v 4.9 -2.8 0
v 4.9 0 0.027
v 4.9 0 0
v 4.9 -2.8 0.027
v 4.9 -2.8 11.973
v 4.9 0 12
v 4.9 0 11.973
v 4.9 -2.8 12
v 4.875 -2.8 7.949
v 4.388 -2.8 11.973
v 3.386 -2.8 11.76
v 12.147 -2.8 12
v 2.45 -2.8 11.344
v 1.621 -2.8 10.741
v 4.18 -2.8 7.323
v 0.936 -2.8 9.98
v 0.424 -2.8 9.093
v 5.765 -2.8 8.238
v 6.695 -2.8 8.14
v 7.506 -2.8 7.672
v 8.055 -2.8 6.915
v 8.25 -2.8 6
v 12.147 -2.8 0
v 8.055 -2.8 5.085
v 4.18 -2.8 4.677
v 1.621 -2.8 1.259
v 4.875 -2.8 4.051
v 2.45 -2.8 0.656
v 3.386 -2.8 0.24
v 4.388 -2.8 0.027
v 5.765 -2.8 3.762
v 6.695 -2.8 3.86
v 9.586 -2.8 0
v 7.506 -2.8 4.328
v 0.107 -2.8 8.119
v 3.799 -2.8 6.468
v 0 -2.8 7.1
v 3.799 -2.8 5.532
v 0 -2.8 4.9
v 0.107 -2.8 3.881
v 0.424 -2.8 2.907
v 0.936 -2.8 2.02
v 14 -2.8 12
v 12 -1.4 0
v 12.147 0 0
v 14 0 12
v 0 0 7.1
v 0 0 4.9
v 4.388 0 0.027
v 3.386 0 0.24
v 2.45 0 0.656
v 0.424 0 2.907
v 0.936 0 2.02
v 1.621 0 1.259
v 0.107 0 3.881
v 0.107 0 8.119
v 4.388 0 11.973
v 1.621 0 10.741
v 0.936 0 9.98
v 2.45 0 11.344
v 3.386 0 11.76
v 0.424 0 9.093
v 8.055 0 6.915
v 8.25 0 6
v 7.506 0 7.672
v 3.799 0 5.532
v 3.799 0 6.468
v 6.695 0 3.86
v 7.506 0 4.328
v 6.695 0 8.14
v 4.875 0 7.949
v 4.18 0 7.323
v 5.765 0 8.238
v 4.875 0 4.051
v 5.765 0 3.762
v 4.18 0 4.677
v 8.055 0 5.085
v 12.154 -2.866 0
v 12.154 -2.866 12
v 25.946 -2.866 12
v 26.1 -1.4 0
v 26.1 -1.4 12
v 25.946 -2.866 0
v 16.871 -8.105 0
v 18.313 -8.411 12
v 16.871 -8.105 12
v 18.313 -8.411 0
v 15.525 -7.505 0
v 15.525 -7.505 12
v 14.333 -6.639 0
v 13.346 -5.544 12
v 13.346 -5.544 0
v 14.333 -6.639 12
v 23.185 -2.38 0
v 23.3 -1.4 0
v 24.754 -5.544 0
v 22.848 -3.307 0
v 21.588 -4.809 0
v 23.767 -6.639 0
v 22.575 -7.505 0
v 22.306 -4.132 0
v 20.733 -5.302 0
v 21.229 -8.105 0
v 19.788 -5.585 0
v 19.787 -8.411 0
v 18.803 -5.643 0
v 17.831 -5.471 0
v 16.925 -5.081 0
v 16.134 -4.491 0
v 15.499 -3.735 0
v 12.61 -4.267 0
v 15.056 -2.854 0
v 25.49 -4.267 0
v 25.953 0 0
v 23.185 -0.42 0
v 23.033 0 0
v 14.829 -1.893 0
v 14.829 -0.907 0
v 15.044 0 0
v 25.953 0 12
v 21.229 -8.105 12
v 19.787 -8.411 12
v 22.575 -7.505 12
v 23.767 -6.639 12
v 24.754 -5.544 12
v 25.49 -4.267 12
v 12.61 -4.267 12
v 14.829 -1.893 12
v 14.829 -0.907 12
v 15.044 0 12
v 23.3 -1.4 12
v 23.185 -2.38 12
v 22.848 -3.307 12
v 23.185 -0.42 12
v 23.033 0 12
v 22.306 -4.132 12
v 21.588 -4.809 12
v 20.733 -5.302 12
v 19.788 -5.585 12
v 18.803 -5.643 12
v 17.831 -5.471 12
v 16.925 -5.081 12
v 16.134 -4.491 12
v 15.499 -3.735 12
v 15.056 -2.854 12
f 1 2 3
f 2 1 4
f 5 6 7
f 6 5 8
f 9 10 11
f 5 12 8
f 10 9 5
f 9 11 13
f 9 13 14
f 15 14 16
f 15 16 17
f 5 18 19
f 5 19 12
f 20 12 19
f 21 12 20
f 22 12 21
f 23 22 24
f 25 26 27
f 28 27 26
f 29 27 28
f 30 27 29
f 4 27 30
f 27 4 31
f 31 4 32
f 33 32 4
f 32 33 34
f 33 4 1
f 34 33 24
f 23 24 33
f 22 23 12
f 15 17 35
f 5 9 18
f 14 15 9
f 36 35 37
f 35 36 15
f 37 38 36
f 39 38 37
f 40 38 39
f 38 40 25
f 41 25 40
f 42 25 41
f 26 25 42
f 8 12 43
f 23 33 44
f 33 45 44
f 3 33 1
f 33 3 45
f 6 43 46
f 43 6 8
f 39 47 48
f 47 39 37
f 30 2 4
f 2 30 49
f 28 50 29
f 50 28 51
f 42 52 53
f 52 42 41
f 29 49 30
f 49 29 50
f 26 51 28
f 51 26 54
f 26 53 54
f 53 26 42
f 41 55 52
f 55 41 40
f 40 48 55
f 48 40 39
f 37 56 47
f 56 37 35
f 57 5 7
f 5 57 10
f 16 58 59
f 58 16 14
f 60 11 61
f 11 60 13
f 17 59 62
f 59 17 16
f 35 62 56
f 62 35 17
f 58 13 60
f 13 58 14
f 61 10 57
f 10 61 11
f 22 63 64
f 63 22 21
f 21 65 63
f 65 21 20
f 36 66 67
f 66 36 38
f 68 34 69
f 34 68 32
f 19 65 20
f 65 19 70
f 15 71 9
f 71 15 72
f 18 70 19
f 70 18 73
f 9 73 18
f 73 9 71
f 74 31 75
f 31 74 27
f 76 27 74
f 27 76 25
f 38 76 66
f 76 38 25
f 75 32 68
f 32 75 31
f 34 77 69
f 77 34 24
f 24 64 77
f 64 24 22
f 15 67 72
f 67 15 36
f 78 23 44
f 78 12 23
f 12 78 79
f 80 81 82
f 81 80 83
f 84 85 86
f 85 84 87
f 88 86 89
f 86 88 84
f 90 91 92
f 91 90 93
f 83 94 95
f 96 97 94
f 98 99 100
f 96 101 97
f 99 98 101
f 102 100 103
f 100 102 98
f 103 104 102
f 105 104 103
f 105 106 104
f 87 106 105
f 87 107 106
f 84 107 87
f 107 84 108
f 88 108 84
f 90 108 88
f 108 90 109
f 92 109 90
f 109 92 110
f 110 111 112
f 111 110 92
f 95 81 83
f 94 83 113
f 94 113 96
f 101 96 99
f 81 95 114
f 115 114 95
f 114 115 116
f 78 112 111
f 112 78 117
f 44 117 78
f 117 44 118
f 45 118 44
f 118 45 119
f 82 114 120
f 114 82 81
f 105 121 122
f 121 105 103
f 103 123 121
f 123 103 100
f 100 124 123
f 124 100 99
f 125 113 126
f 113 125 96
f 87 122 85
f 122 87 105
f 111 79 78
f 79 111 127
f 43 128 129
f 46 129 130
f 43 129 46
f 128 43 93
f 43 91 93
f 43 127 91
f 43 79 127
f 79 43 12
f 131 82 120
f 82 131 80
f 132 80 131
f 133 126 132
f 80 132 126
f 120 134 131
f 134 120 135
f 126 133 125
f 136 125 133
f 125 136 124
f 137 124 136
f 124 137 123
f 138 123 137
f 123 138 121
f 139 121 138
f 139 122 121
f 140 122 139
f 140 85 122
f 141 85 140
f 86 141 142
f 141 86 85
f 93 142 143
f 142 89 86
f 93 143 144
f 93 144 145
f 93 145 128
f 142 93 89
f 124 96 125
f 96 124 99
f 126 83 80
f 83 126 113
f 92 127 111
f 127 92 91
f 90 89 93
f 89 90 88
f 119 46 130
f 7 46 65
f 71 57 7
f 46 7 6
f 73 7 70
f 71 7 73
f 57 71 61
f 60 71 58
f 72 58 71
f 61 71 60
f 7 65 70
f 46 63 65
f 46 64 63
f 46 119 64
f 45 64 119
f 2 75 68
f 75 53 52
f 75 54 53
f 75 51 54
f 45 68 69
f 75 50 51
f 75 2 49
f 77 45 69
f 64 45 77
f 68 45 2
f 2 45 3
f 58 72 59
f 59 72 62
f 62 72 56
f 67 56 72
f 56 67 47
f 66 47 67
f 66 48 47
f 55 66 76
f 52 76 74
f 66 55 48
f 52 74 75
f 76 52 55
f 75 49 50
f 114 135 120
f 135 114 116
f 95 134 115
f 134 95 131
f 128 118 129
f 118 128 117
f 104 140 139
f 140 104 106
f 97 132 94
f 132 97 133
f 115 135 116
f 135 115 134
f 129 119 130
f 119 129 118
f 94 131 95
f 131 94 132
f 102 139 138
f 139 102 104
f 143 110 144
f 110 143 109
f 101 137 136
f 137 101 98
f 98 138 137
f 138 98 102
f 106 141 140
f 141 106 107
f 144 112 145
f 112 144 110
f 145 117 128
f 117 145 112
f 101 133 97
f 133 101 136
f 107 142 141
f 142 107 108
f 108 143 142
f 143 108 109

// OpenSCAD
// file: parameters.scad
// Parameters shared between modules
Base_th = 2.8;
Beam_width = 15;
Wiggle = 0.25;
Fat_beam_width = Beam_width + Wiggle;
Beam_length = 400;
Wall_th = 2.5;
Min_beam_width = 12.5;
Max_beam_width = 17.5;
Zip_th = 2;
Zip_h = Zip_th + Max_beam_width - Min_beam_width;
Zip_w = 5.0;
Nema17_cube_width          = 42.43;
Nema17_screw_hole_width    = 43.74; // Opposite corner screws
Nema17_ring_diameter       = 22;
Nema17_cube_height         = 39.36;
Nema17_shaft_height        = 63.65;
Nema17_ring_height         = 2;
Nema17_shaft_radius        = 5/2;
Nema23_cube_width          = 56;
Nema23_screw_hole_width    = 66.61;
Nema23_ring_diameter       = 38;
Nema23_cube_height         = 56;
Nema23_shaft_radius        = 3.175;

b608_outer_dia = 22.2;
b608_width = 7.05;
Gap_between_sandwich_and_plate = 1.5 + Base_th; // 1.5 mm for wiggle
Motor_bracket_flerp_r = 6;
Motor_bracket_flerp = 14;
Motor_bracket_cw = Nema17_cube_width + 6;
Motor_bracket_att_ang = 50;
Mounting_screw_d = 4.5;
Mounting_screw_head_d = 14;
Spool_outer_wall_th = 4;

// Corner clamp parameters
Cc_l1 = (Fat_beam_width+2*Wall_th)*2*sqrt(3);
Cc_rad_b = 4;
Cc_action_point_from_mid = Cc_l1/sqrt(3)-2*Cc_rad_b-1.3;  // 1.3 chosen arbitrarily
Cc_plastic_length = sqrt(Cc_action_point_from_mid*Cc_action_point_from_mid
                       - (Cc_action_point_from_mid/2)*(Cc_action_point_from_mid/2));

// The distance between the two action points on the mover
Sidelength = Beam_length + 2*Cc_plastic_length;

/////// Layout parameters ////////////
Ext_sidelength = Sidelength+77;
Additional_added_plate_side_length = 10;
Yshift_top_plate = -25;

/////// Gear parameters ////////////
Circular_pitch = 262;
Motor_teeth = 10;
Gear_height = 21.4-3;
Motor_pitch                      = (Motor_teeth*Circular_pitch/360);
Motor_pitch_diametrial           = Motor_teeth/(2*Motor_pitch);
Motor_outer_radius               = Motor_pitch + 1/Motor_pitch_diametrial;
Spool_teeth = 100;
Spool_r = 55;
Spool_height = 8;
Spool_pitch                      = (Spool_teeth*Circular_pitch/360);
Spool_pitch_diametrial           = Spool_teeth/(2*Spool_pitch);
Spool_outer_radius               = Spool_pitch + 1/Spool_pitch_diametrial;
Torx_depth = 5;
Motor_bracket_depth = Gear_height+1+7+Nema17_ring_height+1+Gap_between_sandwich_and_plate;
Spool_core_flerp0 = 16+3;

/////// Lineroller parameters ////////////
b623_width  = 4;
b623_bore_r = 3/2;
b623_vgroove_big_r = 12/2;
b623_vgroove_small_r = 10/2;
Lineroller_wall_th = 2.3;
// The height that lineroller_ABC_winch will have if we include the bearing
Tower_h = Gap_between_sandwich_and_plate+Gear_height
         + Spool_height/2
         + b623_vgroove_small_r
         + b623_vgroove_big_r;
Bearing_wall = 1;
Depth_of_lineroller_tower = b623_width + 2*Wall_th; // 9
Depth_of_lineroller_base = Depth_of_lineroller_tower + 9; // 18
Ptfe_r = 2.1;
Lineroller_base_r = Depth_of_lineroller_base/2-1*(Ptfe_r+2);
Screw_h = 2;
Screw_head_h = 2;
Spool_center_bearing_wall_th = 5;
// main file
include <parameters.scad>
use <util.scad>

bit_width = 12;
axle_r=4.25;

module wing() {
  difference() {
   rotate([90,0,0])
      left_rounded_cube2([bit_width+2,bit_width,Base_th], Lineroller_base_r);
   screw();
  }


}

module screw() {
  translate([bit_width/2, 0, bit_width/2])
    rotate([90,0,0])
    translate([0,0,-1])
    cylinder(d=Mounting_screw_d, h=Base_th+2, $fs=1);
  translate([bit_width/2, 0, bit_width/2])
    rotate([90,0,0])
    translate([0,0,Base_th])
    cylinder(d2=Mounting_screw_head_d-4, d1=Mounting_screw_head_d, h=12, $fs=1);
}


difference(){
  union(){
    wing();
    translate([bit_width+axle_r+Base_th,-Base_th/2,0])
      cylinder(r=axle_r+Base_th, h=bit_width, $fs=1);
  }
  translate([0,0,-1])
    cube(bit_width+2*axle_r+2*Base_th);

  // axle...
    translate([bit_width+axle_r+Base_th,-Base_th/2,-1])
      cylinder(r=axle_r, h=bit_width+2, $fs=1);
}
